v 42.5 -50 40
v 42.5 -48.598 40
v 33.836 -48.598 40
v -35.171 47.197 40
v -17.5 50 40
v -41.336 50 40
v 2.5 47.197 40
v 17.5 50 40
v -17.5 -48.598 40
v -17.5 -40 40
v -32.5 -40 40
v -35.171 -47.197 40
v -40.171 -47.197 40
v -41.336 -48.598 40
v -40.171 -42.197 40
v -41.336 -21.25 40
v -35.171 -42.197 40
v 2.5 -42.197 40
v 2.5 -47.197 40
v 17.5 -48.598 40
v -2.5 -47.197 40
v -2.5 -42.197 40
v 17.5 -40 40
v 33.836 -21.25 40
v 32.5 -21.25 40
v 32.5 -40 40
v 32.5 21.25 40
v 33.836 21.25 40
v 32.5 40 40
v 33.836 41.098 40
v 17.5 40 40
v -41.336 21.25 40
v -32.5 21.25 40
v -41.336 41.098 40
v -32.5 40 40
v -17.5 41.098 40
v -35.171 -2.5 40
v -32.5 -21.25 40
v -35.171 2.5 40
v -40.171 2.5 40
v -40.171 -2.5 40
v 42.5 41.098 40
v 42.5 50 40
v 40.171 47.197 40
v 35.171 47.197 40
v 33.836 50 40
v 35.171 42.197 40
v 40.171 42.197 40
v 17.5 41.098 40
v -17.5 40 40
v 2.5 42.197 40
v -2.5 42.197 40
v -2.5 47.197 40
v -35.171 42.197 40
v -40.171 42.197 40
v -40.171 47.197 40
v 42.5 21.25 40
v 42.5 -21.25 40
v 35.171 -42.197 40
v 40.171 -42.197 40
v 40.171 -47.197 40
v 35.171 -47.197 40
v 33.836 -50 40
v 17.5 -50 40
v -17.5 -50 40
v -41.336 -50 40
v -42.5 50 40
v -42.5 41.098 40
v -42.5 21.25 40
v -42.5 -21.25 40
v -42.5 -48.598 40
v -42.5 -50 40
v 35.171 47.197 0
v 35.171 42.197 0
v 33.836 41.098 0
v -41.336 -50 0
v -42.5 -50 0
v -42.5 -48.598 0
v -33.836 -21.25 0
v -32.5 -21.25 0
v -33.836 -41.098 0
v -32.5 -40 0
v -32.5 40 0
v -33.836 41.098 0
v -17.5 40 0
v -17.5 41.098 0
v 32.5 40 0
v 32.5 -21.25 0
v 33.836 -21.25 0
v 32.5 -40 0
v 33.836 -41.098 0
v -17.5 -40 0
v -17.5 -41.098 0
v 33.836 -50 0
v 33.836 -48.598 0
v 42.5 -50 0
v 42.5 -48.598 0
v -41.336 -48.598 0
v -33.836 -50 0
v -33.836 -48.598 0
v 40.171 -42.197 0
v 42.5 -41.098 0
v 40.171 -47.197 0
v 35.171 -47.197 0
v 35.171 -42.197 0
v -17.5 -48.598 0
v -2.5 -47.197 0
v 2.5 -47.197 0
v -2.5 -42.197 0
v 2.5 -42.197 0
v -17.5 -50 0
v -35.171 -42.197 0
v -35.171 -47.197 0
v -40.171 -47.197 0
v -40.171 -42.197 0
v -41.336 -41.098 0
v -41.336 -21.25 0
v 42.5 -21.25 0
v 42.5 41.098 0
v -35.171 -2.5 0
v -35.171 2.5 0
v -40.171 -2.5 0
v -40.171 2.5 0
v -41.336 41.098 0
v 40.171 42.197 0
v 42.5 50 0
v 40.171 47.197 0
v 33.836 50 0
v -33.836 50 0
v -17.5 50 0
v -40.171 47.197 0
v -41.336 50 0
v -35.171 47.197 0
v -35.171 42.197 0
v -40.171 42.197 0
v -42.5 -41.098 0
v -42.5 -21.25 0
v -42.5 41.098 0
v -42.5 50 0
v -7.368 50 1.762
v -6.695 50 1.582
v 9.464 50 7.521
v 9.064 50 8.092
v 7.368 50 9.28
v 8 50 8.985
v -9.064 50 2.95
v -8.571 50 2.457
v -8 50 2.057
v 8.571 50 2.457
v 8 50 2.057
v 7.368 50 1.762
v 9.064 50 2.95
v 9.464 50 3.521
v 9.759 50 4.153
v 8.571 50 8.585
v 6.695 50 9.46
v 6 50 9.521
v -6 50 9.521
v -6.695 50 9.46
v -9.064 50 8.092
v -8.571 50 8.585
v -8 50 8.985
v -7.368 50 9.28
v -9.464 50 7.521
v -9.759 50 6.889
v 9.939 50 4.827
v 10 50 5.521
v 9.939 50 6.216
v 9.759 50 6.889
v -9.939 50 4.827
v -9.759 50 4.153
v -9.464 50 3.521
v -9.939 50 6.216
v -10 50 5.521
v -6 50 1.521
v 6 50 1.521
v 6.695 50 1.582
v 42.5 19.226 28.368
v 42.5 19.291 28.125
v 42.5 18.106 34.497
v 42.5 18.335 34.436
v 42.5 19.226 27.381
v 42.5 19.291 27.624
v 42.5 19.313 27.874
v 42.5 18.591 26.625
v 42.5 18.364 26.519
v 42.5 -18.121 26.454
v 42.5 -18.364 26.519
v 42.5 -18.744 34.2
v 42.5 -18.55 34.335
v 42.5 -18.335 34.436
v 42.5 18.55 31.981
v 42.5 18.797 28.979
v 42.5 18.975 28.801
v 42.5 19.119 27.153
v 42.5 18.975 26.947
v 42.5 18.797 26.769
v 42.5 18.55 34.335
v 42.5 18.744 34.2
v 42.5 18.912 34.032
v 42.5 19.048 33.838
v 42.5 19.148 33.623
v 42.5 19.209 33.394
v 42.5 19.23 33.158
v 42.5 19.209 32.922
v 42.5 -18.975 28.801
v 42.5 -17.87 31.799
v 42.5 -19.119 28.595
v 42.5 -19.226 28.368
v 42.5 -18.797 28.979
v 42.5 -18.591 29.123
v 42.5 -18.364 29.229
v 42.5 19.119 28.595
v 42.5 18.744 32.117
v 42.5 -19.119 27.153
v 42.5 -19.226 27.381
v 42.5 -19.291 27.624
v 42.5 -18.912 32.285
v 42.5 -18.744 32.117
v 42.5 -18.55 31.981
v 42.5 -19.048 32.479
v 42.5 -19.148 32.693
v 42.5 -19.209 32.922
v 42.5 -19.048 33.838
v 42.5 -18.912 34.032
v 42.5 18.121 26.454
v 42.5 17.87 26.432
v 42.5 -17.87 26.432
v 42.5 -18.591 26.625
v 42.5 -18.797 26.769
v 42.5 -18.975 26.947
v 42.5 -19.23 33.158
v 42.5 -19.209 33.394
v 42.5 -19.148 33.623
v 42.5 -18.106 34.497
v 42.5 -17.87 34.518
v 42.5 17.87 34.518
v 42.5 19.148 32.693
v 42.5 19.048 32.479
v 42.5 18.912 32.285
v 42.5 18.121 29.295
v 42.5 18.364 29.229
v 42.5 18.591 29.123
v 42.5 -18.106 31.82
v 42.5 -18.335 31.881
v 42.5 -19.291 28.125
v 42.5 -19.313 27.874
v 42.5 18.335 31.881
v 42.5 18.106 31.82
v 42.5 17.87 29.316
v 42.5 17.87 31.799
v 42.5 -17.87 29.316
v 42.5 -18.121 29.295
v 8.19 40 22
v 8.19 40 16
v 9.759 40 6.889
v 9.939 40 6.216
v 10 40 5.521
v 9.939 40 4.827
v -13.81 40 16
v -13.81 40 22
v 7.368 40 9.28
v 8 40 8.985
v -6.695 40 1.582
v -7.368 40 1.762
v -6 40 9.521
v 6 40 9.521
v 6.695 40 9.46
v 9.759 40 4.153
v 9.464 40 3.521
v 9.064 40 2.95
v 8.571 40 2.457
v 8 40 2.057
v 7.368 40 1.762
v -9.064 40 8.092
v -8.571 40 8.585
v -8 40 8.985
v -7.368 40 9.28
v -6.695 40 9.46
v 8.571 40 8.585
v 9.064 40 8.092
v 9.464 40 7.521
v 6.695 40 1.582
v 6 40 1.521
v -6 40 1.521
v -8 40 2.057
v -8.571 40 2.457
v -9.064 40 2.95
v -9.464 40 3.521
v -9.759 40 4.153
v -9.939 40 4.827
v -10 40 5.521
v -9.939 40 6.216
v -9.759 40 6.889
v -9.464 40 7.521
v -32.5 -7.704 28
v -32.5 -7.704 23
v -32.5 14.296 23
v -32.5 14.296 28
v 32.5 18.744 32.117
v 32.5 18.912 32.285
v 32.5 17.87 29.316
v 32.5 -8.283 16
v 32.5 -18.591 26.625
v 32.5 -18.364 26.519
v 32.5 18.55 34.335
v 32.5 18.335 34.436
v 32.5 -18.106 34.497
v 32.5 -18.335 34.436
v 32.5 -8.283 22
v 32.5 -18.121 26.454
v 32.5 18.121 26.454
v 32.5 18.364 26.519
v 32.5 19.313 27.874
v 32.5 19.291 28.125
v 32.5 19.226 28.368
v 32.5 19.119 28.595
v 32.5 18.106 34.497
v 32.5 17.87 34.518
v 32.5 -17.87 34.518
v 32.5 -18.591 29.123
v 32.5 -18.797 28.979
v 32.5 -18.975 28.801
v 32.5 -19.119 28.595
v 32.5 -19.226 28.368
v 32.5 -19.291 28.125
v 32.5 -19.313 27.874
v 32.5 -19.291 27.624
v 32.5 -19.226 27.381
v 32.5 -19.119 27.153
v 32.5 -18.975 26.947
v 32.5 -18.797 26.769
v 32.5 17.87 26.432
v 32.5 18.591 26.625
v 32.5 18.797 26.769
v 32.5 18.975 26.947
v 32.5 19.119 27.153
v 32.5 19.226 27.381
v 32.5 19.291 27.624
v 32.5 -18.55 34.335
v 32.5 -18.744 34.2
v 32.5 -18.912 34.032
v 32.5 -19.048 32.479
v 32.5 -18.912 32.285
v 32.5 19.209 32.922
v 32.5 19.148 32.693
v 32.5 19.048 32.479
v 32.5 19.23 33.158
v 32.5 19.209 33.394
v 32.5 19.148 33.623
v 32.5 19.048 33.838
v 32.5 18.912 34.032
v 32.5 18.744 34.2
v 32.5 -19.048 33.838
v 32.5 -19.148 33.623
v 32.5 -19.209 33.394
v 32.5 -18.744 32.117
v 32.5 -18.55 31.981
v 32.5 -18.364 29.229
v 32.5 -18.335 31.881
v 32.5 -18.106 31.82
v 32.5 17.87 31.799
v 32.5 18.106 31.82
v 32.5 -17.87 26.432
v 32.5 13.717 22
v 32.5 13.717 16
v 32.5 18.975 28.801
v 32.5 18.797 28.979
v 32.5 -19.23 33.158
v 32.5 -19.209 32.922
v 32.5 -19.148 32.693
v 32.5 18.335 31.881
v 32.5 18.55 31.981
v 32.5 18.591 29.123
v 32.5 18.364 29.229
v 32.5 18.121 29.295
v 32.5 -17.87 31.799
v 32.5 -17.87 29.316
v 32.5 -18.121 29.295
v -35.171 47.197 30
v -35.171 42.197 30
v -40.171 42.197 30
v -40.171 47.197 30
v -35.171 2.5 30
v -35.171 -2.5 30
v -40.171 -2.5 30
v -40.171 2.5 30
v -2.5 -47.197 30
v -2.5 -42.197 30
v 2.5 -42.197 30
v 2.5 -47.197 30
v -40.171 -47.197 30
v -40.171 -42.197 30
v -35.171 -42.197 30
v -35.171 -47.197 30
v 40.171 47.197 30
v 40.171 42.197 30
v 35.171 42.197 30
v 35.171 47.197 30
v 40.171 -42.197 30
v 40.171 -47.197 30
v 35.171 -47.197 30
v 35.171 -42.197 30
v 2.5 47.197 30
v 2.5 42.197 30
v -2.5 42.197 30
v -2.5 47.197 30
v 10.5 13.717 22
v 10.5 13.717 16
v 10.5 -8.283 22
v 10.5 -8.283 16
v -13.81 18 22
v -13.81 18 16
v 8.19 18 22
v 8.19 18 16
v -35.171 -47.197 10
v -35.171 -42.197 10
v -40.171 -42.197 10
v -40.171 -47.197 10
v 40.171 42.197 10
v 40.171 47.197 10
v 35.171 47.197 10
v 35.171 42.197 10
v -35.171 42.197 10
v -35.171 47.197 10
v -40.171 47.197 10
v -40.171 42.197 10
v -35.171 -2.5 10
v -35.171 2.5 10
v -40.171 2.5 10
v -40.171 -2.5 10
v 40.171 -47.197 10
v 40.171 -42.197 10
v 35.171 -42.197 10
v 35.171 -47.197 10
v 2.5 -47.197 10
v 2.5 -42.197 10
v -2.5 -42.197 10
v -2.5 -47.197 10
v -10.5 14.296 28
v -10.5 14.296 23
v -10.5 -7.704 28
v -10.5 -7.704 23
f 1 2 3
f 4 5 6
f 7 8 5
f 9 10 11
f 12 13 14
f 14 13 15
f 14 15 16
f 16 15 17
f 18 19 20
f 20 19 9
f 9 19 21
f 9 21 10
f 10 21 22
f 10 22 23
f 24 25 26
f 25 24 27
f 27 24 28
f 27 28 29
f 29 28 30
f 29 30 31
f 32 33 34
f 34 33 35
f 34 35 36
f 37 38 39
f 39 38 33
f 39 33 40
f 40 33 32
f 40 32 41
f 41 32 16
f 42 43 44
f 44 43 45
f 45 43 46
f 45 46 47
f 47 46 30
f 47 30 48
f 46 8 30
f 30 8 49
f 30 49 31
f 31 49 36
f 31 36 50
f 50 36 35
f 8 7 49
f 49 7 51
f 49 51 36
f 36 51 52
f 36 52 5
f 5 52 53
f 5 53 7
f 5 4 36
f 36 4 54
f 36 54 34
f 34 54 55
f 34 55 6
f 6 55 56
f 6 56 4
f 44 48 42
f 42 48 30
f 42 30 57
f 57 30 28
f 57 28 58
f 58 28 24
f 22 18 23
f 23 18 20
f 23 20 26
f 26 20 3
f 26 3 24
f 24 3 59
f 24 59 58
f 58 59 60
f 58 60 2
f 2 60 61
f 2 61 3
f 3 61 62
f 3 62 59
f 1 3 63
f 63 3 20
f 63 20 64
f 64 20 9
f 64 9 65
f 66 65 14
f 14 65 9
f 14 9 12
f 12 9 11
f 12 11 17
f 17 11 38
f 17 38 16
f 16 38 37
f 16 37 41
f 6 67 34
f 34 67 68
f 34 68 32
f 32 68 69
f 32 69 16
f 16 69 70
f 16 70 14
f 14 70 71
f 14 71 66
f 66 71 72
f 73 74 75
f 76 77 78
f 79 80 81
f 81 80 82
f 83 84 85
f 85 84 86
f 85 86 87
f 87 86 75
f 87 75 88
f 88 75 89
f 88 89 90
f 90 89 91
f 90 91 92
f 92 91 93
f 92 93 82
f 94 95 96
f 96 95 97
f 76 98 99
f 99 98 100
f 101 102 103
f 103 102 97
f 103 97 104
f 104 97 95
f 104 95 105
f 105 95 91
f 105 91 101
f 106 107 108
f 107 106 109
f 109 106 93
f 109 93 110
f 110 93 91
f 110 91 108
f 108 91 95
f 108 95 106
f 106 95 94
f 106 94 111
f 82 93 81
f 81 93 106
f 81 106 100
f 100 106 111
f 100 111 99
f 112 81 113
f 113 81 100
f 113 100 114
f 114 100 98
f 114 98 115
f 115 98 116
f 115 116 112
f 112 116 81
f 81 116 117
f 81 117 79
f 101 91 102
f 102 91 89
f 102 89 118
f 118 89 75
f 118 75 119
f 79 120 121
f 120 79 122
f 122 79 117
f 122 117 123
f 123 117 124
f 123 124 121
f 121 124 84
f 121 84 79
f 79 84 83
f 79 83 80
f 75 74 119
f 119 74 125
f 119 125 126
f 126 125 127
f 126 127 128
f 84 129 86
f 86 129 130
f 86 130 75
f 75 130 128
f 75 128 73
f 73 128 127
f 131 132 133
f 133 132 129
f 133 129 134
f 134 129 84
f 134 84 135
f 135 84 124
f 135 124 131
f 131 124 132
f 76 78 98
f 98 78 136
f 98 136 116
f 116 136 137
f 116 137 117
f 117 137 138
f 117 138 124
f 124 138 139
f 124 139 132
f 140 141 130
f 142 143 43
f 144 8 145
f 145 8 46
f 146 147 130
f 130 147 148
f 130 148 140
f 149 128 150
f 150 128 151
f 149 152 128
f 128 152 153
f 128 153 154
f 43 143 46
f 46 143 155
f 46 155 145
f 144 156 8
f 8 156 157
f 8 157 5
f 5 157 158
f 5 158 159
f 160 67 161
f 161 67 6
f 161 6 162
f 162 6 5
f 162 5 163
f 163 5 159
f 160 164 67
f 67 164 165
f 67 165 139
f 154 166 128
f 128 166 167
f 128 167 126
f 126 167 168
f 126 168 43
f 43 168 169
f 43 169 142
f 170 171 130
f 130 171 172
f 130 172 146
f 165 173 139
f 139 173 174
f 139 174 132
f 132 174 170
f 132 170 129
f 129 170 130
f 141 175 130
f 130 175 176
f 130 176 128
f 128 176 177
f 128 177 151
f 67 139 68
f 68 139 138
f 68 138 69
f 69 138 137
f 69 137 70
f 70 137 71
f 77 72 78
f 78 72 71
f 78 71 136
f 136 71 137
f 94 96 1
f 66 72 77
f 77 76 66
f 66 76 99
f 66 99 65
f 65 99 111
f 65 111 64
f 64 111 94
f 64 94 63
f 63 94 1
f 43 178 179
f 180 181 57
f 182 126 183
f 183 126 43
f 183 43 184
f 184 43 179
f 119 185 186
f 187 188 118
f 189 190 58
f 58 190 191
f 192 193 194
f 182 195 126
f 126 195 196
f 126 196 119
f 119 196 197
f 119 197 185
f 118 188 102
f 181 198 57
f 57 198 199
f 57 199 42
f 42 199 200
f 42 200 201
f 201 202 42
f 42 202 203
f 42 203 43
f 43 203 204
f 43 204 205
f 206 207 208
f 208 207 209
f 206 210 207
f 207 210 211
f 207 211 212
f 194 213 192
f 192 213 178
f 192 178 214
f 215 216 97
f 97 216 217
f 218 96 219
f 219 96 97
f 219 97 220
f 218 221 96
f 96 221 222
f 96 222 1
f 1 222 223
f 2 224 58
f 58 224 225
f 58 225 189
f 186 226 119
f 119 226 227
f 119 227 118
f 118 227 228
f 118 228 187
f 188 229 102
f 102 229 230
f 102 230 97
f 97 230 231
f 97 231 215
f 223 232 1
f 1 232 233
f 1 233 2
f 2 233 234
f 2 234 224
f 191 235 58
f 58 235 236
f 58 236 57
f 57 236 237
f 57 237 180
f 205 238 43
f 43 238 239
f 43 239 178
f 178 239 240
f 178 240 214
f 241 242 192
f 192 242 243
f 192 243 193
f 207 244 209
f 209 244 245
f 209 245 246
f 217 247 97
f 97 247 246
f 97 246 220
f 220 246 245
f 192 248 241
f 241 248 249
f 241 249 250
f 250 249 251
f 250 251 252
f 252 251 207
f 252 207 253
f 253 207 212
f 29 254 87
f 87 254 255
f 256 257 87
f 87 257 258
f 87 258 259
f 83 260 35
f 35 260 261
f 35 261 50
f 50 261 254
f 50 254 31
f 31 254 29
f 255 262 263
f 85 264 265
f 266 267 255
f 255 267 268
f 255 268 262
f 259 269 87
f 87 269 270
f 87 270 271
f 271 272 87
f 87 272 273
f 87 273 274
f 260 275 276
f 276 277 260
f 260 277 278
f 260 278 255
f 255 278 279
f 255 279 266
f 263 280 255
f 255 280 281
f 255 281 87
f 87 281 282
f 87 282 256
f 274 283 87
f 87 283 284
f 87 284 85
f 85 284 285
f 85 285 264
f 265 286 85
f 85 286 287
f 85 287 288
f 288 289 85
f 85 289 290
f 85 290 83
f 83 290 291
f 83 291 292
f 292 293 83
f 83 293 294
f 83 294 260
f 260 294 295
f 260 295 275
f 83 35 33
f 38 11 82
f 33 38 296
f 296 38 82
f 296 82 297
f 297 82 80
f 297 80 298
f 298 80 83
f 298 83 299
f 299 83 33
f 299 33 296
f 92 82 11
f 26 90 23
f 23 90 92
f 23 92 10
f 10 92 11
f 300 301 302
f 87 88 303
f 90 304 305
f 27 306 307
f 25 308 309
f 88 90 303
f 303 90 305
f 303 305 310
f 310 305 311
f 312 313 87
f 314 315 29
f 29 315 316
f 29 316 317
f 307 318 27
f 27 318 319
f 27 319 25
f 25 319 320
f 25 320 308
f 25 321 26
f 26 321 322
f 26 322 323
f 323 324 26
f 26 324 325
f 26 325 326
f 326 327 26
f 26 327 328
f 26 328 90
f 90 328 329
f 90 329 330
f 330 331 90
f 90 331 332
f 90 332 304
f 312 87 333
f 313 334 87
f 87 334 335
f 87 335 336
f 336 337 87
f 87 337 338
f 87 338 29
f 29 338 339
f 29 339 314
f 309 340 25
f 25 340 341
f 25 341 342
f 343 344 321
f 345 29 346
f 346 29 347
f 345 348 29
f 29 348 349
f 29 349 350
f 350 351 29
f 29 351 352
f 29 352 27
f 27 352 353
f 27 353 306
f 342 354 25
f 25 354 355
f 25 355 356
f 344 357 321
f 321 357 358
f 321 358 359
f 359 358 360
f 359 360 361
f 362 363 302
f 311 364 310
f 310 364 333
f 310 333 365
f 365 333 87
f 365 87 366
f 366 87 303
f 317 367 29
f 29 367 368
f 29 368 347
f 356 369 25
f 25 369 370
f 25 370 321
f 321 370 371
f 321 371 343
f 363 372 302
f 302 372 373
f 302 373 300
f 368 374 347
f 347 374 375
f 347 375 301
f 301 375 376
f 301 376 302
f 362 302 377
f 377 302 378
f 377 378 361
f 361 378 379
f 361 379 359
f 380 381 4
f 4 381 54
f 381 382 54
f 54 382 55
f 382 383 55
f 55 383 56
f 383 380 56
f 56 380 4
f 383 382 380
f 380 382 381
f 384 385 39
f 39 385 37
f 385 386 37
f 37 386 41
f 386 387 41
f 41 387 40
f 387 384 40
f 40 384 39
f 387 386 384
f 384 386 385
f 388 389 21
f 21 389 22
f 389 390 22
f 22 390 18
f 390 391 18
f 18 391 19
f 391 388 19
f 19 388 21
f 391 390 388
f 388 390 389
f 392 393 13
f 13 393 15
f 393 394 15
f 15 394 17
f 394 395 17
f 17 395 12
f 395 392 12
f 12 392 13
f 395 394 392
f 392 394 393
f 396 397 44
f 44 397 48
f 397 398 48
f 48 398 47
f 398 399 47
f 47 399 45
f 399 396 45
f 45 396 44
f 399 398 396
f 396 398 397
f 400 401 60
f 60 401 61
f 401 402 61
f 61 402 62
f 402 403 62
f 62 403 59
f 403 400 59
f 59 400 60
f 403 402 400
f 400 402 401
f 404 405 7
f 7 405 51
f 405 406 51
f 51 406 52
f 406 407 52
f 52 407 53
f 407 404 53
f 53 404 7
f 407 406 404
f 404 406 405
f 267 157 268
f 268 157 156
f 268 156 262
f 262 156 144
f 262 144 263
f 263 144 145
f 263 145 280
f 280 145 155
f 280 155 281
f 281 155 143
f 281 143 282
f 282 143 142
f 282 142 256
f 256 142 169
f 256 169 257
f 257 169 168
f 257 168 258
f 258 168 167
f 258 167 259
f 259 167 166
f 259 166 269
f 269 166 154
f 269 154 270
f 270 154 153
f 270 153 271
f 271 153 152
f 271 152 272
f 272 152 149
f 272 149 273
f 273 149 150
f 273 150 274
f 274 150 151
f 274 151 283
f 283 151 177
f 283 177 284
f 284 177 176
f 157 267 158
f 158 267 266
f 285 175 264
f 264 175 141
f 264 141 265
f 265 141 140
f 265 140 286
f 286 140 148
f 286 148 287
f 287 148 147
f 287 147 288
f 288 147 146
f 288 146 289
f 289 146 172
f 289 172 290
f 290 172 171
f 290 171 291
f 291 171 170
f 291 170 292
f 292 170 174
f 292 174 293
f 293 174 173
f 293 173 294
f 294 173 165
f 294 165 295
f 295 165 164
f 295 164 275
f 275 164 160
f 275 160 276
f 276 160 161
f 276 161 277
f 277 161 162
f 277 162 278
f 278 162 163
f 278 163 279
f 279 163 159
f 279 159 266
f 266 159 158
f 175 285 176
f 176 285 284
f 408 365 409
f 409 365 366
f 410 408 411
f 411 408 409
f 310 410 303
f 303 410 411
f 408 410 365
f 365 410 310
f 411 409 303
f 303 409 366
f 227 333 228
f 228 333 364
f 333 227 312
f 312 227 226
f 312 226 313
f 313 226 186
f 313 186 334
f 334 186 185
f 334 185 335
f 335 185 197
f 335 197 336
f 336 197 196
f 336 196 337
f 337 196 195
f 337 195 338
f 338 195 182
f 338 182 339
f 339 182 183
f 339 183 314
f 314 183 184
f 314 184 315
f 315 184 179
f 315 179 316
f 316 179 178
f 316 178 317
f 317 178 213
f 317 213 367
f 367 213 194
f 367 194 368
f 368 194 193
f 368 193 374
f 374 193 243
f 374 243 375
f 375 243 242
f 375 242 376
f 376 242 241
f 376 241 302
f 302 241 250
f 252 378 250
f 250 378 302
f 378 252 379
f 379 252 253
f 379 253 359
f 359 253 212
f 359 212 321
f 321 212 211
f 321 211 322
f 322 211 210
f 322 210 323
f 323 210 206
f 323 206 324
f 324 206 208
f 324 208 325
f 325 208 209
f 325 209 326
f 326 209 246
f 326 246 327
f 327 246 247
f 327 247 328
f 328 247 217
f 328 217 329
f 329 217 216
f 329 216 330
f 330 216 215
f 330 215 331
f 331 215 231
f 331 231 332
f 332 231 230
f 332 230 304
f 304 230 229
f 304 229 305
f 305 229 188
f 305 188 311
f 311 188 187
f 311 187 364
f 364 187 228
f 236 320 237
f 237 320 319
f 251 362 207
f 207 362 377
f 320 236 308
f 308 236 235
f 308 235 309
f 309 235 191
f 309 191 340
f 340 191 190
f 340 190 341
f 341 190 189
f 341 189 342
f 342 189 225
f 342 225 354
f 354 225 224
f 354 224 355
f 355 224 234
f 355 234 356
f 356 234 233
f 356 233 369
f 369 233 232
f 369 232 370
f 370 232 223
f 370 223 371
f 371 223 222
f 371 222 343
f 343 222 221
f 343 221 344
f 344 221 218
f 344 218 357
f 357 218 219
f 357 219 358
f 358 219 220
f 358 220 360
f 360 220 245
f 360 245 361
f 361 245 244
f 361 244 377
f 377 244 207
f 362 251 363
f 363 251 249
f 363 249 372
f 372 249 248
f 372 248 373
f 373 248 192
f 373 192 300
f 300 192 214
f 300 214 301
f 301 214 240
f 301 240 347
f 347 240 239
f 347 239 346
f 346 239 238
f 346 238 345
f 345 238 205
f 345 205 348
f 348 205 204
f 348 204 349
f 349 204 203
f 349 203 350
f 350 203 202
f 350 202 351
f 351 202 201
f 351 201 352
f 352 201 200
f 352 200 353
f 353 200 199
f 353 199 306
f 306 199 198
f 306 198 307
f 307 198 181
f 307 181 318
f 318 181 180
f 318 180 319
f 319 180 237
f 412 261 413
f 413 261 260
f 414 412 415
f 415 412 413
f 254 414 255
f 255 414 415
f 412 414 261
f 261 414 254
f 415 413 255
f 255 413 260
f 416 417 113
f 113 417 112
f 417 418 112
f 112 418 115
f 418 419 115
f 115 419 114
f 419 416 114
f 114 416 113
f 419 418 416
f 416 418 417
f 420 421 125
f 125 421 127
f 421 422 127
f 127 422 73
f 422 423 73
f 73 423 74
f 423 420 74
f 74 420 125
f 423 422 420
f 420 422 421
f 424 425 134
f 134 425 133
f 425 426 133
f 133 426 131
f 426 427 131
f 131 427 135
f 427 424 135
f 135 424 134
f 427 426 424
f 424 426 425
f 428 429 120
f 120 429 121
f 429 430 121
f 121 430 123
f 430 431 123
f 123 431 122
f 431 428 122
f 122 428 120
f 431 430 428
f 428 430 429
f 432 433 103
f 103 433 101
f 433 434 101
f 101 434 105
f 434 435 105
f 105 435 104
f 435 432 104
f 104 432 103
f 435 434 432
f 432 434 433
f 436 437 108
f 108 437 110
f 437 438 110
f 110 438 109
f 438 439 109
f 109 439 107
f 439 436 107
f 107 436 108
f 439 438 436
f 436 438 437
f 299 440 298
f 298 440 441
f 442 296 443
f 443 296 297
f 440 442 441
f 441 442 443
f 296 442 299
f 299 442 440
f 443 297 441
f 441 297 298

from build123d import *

# Parameters (mm, degrees)
SKETCH1_W            = 100
SKETCH1_H            = 85
SKETCH1_W_2          = 80
SKETCH1_H_2          = 65
BOSS_EXTRUDE1_DEPTH  = 40
SKETCH14_W           = 5
SKETCH14_H           = 5
CUT_EXTRUDE11_DEPTH  = 10
CUT_EXTRUDE16_REACH  = 117.785
SKETCH24_W           = 22
SKETCH24_H           = 22
BOSS_EXTRUDE13_DEPTH = 6
CUT_EXTRUDE17_REACH  = 108.419
SKETCH32_W           = 22
SKETCH32_H           = 22
BOSS_EXTRUDE17_DEPTH = 6
SKETCH33_W           = 5
SKETCH33_H           = 5
CUT_EXTRUDE18_DEPTH  = 10
SKETCH36_W           = 22
SKETCH36_H           = 22
BOSS_EXTRUDE19_DEPTH = 5


with BuildPart() as part:
    # Sketch1 → Boss-Extrude1 (new body)
    with BuildSketch(Plane(origin=(0, 0, 0), x_dir=(0, 1, 0), z_dir=(0, 0, 1))):
        Rectangle(SKETCH1_W, SKETCH1_H)
        Rectangle(SKETCH1_W_2, SKETCH1_H_2, mode=Mode.SUBTRACT)
    extrude(amount=BOSS_EXTRUDE1_DEPTH)

    # Sketch14 → Cut-Extrude11 (cut)
    with BuildSketch(Plane.XY.offset(40)):
        with Locations((-37.671132401, 44.6965107)):
            Rectangle(SKETCH14_W, SKETCH14_H)
        with Locations((-37.671132401, -44.6965107)):
            Rectangle(SKETCH14_W, SKETCH14_H)
        with Locations((37.671132401, 44.6965107)):
            Rectangle(SKETCH14_W, SKETCH14_H)
        with Locations((37.671132401, -44.6965107)):
            Rectangle(SKETCH14_W, SKETCH14_H)
        with Locations((0, 44.6965107)):
            Rectangle(SKETCH14_W, SKETCH14_H)
        with Locations((0, -44.6965107)):
            Rectangle(SKETCH14_W, SKETCH14_H)
        with Locations((-37.671132401, 0)):
            Rectangle(SKETCH14_W, SKETCH14_H)
    extrude(amount=-CUT_EXTRUDE11_DEPTH, mode=Mode.SUBTRACT)

    # Sketch22 → Cut-Extrude16 (cut, up to next)
    with BuildSketch(Plane(origin=(0, 50, 0), x_dir=(-1, 0, 0), z_dir=(0, 1, 0)), mode=Mode.PRIVATE) as cut_extrude16_sk1:
        with BuildLine():
            Line((-6, 9.521249719), (6, 9.521249719))
            ThreePointArc((6, 9.521249719), (10, 5.521249719), (6, 1.521249719))
            Line((6, 1.521249719), (-6, 1.521249719))
            ThreePointArc((-6, 1.521249719), (-10, 5.521249719), (-6, 9.521249719))
        make_face()
    cut_extrude16_tool1 = extrude(cut_extrude16_sk1.sketch, amount=-CUT_EXTRUDE16_REACH, mode=Mode.PRIVATE) & part.part
    add(cut_extrude16_tool1.solids().sort_by_distance((0, 50, 5.52125))[0], mode=Mode.SUBTRACT)

    # Sketch24 → Boss-Extrude13 (add)
    with BuildSketch(Plane.XY.offset(16)):
        with Locations((21.5, 2.716540801)):
            Rectangle(SKETCH24_W, SKETCH24_H)
    extrude(amount=BOSS_EXTRUDE13_DEPTH)

    # Sketch12 → Cut-Extrude17 (cut, up to next)
    with BuildSketch(Plane.YZ.offset(42.5), mode=Mode.PRIVATE) as cut_extrude17_sk1:
        with BuildLine():
            Line((-17.870386686, 34.517617013), (17.870386686, 34.517617013))
            ThreePointArc((17.870386686, 34.517617013), (19.229729644, 33.158274056), (17.870386686, 31.798931098))
            Line((17.870386686, 31.798931098), (-17.870386686, 31.798931098))
            ThreePointArc((-17.870386686, 31.798931098), (-19.229729644, 33.158274056), (-17.870386686, 34.517617013))
        make_face()
    cut_extrude17_tool1 = extrude(cut_extrude17_sk1.sketch, amount=-CUT_EXTRUDE17_REACH, mode=Mode.PRIVATE) & part.part
    # Sketch12 → Cut-Extrude17 (cut, up to next)
    with BuildSketch(Plane.YZ.offset(42.5), mode=Mode.PRIVATE) as cut_extrude17_sk2:
        with BuildLine():
            Line((-17.870386686, 29.316472465), (17.870386686, 29.316472465))
            ThreePointArc((17.870386686, 29.316472465), (19.31261641, 27.874242742), (17.870386686, 26.432013019))
            Line((17.870386686, 26.432013019), (-17.870386686, 26.432013019))
            ThreePointArc((-17.870386686, 26.432013019), (-19.31261641, 27.874242742), (-17.870386686, 29.316472465))
        make_face()
    cut_extrude17_tool2 = extrude(cut_extrude17_sk2.sketch, amount=-CUT_EXTRUDE17_REACH, mode=Mode.PRIVATE) & part.part
    add(cut_extrude17_tool1.solids().sort_by_distance((42.5, 0, 33.158274))[0], mode=Mode.SUBTRACT)
    add(cut_extrude17_tool2.solids().sort_by_distance((42.5, 0, 27.874243))[0], mode=Mode.SUBTRACT)

    # Sketch32 → Boss-Extrude17 (add)
    with BuildSketch(Plane.XY.offset(16)):
        with Locations((-2.810397874, 29)):
            Rectangle(SKETCH32_W, SKETCH32_H)
    extrude(amount=BOSS_EXTRUDE17_DEPTH)

    # Sketch33 → Cut-Extrude18 (cut)
    with BuildSketch(Plane(origin=(0, 0, 0), x_dir=(1, 0, 0), z_dir=(0, 0, -1))):
        with Locations((-37.671132401, 44.6965107)):
            Rectangle(SKETCH33_W, SKETCH33_H)
        with Locations((0, 44.6965107)):
            Rectangle(SKETCH33_W, SKETCH33_H)
        with Locations((37.671132401, 44.6965107)):
            Rectangle(SKETCH33_W, SKETCH33_H)
        with Locations((-37.671132401, 0)):
            Rectangle(SKETCH33_W, SKETCH33_H)
        with Locations((-37.671132401, -44.6965107)):
            Rectangle(SKETCH33_W, SKETCH33_H)
        with Locations((37.671132401, -44.6965107)):
            Rectangle(SKETCH33_W, SKETCH33_H)
    extrude(amount=-CUT_EXTRUDE18_DEPTH, mode=Mode.SUBTRACT)

    # Sketch36 → Boss-Extrude19 (add)
    with BuildSketch(Plane.XY.offset(23)):
        with Locations((-21.5, 3.296429393)):
            Rectangle(SKETCH36_W, SKETCH36_H)
    extrude(amount=BOSS_EXTRUDE19_DEPTH)


solid = part.part
